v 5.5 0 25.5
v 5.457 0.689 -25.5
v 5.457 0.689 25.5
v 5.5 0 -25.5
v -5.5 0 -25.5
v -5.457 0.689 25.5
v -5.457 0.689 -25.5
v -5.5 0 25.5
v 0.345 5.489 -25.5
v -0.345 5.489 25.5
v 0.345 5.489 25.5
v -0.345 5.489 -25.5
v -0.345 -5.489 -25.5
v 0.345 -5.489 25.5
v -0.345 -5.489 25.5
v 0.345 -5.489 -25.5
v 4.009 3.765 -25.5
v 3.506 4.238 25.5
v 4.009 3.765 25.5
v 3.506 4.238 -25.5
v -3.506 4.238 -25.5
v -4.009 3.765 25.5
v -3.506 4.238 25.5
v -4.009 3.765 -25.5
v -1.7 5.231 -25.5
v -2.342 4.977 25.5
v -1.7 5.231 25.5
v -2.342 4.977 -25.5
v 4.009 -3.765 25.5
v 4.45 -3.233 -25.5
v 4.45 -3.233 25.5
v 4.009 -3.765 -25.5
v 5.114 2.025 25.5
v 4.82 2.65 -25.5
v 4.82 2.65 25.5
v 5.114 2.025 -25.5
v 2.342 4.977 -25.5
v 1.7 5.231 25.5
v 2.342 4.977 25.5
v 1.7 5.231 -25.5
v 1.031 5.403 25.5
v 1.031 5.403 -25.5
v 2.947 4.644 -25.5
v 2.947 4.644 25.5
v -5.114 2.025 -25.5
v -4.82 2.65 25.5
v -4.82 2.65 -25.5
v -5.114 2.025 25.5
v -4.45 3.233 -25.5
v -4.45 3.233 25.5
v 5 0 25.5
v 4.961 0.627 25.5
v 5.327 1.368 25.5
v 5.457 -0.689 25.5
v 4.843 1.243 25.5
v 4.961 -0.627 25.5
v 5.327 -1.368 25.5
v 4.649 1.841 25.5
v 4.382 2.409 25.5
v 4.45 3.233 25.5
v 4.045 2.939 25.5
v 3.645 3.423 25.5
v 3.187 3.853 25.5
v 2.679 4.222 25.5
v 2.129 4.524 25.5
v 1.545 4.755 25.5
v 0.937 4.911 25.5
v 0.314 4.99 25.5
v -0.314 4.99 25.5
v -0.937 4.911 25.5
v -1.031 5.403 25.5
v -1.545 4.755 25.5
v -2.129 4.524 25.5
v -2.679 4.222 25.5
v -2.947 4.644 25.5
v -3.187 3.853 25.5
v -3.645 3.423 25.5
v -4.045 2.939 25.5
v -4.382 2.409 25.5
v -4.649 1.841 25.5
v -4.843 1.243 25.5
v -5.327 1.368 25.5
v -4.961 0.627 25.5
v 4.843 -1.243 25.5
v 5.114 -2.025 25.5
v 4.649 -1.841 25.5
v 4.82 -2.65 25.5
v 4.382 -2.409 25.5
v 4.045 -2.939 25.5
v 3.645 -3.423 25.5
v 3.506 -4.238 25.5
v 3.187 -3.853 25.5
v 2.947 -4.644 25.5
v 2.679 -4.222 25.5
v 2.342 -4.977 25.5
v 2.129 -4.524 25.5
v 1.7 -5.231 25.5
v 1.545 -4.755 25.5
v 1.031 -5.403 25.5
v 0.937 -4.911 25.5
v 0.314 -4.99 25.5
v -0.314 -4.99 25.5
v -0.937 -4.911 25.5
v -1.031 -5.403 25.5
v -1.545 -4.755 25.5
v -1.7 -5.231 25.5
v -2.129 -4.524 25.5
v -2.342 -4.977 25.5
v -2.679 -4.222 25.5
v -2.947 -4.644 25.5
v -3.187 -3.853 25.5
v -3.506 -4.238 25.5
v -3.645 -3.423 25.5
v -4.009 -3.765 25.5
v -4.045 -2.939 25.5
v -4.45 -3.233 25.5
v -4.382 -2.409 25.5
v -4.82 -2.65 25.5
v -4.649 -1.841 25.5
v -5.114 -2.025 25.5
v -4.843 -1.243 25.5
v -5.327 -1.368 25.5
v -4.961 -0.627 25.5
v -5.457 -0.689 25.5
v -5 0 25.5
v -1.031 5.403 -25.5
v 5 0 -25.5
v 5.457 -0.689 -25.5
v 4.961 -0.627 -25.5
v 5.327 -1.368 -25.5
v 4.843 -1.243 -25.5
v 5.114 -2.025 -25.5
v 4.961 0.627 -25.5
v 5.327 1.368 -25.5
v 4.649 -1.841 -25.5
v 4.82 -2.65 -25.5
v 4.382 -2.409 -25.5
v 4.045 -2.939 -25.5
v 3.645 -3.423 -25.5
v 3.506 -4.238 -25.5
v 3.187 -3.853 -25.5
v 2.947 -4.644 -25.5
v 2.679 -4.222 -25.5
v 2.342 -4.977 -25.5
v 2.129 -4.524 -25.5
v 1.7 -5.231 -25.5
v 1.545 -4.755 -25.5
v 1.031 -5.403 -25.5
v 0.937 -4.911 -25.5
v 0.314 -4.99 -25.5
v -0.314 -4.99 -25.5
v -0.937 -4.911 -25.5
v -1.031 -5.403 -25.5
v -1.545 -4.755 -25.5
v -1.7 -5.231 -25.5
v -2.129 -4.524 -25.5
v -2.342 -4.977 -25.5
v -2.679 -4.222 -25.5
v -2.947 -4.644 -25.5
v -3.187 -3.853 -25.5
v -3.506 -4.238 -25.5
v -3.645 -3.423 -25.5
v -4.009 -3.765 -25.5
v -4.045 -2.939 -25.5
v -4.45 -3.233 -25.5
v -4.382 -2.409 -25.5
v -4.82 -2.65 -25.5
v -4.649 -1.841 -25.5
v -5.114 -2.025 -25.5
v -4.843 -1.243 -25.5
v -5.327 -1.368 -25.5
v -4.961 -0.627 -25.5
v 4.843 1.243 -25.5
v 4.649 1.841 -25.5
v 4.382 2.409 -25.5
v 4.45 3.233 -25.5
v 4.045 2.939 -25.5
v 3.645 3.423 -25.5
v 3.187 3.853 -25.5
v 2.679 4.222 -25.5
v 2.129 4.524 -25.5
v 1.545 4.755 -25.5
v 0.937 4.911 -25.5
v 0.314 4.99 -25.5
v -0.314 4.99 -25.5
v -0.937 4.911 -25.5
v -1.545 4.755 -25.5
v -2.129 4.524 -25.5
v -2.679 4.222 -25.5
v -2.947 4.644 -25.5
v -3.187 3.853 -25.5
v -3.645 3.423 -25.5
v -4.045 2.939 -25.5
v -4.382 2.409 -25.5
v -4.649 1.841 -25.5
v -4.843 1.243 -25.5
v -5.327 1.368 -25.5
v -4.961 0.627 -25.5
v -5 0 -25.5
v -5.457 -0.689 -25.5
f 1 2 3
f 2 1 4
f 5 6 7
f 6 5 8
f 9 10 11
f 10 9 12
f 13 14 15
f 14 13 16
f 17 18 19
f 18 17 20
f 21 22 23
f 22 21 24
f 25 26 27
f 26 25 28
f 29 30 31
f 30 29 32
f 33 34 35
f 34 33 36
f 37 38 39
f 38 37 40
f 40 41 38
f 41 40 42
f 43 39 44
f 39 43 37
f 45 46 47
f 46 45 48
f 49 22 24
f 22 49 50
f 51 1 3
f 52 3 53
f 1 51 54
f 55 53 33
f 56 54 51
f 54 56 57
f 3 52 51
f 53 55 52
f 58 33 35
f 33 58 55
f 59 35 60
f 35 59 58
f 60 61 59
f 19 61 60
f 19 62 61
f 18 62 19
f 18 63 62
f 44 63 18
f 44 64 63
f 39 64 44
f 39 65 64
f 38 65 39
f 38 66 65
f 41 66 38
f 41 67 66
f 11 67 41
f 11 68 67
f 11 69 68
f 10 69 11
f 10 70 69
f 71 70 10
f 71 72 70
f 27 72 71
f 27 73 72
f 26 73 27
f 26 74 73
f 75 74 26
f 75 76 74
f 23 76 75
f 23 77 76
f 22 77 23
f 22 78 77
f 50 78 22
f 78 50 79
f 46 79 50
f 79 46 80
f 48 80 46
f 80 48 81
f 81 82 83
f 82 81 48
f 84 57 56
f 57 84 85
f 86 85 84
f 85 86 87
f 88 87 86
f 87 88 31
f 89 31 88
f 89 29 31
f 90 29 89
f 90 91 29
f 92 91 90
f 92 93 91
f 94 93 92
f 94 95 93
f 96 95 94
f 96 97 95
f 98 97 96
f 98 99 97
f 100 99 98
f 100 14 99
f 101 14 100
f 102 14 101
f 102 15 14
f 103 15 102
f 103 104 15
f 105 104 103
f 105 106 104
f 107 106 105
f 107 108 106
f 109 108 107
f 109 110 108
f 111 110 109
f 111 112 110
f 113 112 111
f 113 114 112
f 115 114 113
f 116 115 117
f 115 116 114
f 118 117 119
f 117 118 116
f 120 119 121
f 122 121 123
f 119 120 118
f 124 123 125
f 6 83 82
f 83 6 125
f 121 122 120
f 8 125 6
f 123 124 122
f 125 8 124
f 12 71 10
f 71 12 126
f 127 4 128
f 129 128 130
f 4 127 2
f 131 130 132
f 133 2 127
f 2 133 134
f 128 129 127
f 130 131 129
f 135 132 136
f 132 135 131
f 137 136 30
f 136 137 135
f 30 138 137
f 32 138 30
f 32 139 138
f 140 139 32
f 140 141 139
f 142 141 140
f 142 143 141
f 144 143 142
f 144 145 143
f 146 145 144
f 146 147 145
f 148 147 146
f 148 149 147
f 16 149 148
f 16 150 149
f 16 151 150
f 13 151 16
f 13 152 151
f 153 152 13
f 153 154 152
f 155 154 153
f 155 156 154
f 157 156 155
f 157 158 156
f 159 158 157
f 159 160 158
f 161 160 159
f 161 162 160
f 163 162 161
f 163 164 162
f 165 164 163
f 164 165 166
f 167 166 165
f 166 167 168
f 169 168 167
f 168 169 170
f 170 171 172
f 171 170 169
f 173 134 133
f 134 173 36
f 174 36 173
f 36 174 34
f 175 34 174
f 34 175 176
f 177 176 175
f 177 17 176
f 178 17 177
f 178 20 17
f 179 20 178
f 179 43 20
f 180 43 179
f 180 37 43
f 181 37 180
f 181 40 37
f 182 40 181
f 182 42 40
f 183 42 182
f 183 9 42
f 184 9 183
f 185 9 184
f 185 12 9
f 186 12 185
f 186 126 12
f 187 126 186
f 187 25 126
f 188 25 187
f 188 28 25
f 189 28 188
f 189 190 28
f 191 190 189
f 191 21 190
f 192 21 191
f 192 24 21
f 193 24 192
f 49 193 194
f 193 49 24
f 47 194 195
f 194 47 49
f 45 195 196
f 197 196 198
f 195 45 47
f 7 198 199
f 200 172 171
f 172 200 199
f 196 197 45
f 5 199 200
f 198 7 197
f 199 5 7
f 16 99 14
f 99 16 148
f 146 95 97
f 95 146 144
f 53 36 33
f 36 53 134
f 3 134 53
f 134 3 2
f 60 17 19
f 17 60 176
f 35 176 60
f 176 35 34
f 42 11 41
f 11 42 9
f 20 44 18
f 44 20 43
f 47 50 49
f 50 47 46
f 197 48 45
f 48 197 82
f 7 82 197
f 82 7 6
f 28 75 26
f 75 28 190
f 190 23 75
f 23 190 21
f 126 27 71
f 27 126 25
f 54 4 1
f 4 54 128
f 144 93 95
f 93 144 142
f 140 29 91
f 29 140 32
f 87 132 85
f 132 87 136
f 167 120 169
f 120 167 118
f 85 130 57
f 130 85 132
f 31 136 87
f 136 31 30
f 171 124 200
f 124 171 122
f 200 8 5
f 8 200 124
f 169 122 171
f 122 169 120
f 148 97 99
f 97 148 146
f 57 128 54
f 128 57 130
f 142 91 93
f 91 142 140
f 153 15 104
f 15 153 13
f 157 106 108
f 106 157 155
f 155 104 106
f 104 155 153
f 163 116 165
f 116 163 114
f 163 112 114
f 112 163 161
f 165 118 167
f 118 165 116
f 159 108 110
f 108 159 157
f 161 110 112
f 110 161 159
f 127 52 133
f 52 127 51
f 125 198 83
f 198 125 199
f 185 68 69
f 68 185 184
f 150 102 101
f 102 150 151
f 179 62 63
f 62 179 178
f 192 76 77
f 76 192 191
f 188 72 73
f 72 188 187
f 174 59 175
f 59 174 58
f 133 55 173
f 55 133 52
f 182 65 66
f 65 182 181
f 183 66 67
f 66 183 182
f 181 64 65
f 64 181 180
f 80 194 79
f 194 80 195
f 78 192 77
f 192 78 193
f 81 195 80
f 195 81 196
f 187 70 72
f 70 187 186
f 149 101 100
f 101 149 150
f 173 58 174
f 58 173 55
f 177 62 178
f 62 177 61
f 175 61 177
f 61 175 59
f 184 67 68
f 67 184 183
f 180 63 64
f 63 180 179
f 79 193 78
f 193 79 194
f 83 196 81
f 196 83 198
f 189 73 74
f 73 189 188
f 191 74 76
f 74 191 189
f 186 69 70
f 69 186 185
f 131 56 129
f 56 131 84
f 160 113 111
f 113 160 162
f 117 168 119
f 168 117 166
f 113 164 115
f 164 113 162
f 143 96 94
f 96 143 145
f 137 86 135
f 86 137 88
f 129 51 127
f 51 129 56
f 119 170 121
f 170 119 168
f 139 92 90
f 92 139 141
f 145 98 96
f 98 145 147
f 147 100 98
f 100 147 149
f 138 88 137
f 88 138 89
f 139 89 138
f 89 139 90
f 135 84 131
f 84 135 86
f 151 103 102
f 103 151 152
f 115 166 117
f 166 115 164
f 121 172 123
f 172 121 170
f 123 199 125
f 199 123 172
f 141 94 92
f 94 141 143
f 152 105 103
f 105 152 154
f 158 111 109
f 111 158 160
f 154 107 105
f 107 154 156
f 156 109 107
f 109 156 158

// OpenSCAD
$fn = 50;


difference() {
	union() {
		translate(v = [0, 0, -25.5000000000]) {
			cylinder(h = 51, r = 5.5000000000);
		}
	}
	union() {
		translate(v = [0, 0, -100.0000000000]) {
			cylinder(h = 200, r = 5);
		}
	}
}
